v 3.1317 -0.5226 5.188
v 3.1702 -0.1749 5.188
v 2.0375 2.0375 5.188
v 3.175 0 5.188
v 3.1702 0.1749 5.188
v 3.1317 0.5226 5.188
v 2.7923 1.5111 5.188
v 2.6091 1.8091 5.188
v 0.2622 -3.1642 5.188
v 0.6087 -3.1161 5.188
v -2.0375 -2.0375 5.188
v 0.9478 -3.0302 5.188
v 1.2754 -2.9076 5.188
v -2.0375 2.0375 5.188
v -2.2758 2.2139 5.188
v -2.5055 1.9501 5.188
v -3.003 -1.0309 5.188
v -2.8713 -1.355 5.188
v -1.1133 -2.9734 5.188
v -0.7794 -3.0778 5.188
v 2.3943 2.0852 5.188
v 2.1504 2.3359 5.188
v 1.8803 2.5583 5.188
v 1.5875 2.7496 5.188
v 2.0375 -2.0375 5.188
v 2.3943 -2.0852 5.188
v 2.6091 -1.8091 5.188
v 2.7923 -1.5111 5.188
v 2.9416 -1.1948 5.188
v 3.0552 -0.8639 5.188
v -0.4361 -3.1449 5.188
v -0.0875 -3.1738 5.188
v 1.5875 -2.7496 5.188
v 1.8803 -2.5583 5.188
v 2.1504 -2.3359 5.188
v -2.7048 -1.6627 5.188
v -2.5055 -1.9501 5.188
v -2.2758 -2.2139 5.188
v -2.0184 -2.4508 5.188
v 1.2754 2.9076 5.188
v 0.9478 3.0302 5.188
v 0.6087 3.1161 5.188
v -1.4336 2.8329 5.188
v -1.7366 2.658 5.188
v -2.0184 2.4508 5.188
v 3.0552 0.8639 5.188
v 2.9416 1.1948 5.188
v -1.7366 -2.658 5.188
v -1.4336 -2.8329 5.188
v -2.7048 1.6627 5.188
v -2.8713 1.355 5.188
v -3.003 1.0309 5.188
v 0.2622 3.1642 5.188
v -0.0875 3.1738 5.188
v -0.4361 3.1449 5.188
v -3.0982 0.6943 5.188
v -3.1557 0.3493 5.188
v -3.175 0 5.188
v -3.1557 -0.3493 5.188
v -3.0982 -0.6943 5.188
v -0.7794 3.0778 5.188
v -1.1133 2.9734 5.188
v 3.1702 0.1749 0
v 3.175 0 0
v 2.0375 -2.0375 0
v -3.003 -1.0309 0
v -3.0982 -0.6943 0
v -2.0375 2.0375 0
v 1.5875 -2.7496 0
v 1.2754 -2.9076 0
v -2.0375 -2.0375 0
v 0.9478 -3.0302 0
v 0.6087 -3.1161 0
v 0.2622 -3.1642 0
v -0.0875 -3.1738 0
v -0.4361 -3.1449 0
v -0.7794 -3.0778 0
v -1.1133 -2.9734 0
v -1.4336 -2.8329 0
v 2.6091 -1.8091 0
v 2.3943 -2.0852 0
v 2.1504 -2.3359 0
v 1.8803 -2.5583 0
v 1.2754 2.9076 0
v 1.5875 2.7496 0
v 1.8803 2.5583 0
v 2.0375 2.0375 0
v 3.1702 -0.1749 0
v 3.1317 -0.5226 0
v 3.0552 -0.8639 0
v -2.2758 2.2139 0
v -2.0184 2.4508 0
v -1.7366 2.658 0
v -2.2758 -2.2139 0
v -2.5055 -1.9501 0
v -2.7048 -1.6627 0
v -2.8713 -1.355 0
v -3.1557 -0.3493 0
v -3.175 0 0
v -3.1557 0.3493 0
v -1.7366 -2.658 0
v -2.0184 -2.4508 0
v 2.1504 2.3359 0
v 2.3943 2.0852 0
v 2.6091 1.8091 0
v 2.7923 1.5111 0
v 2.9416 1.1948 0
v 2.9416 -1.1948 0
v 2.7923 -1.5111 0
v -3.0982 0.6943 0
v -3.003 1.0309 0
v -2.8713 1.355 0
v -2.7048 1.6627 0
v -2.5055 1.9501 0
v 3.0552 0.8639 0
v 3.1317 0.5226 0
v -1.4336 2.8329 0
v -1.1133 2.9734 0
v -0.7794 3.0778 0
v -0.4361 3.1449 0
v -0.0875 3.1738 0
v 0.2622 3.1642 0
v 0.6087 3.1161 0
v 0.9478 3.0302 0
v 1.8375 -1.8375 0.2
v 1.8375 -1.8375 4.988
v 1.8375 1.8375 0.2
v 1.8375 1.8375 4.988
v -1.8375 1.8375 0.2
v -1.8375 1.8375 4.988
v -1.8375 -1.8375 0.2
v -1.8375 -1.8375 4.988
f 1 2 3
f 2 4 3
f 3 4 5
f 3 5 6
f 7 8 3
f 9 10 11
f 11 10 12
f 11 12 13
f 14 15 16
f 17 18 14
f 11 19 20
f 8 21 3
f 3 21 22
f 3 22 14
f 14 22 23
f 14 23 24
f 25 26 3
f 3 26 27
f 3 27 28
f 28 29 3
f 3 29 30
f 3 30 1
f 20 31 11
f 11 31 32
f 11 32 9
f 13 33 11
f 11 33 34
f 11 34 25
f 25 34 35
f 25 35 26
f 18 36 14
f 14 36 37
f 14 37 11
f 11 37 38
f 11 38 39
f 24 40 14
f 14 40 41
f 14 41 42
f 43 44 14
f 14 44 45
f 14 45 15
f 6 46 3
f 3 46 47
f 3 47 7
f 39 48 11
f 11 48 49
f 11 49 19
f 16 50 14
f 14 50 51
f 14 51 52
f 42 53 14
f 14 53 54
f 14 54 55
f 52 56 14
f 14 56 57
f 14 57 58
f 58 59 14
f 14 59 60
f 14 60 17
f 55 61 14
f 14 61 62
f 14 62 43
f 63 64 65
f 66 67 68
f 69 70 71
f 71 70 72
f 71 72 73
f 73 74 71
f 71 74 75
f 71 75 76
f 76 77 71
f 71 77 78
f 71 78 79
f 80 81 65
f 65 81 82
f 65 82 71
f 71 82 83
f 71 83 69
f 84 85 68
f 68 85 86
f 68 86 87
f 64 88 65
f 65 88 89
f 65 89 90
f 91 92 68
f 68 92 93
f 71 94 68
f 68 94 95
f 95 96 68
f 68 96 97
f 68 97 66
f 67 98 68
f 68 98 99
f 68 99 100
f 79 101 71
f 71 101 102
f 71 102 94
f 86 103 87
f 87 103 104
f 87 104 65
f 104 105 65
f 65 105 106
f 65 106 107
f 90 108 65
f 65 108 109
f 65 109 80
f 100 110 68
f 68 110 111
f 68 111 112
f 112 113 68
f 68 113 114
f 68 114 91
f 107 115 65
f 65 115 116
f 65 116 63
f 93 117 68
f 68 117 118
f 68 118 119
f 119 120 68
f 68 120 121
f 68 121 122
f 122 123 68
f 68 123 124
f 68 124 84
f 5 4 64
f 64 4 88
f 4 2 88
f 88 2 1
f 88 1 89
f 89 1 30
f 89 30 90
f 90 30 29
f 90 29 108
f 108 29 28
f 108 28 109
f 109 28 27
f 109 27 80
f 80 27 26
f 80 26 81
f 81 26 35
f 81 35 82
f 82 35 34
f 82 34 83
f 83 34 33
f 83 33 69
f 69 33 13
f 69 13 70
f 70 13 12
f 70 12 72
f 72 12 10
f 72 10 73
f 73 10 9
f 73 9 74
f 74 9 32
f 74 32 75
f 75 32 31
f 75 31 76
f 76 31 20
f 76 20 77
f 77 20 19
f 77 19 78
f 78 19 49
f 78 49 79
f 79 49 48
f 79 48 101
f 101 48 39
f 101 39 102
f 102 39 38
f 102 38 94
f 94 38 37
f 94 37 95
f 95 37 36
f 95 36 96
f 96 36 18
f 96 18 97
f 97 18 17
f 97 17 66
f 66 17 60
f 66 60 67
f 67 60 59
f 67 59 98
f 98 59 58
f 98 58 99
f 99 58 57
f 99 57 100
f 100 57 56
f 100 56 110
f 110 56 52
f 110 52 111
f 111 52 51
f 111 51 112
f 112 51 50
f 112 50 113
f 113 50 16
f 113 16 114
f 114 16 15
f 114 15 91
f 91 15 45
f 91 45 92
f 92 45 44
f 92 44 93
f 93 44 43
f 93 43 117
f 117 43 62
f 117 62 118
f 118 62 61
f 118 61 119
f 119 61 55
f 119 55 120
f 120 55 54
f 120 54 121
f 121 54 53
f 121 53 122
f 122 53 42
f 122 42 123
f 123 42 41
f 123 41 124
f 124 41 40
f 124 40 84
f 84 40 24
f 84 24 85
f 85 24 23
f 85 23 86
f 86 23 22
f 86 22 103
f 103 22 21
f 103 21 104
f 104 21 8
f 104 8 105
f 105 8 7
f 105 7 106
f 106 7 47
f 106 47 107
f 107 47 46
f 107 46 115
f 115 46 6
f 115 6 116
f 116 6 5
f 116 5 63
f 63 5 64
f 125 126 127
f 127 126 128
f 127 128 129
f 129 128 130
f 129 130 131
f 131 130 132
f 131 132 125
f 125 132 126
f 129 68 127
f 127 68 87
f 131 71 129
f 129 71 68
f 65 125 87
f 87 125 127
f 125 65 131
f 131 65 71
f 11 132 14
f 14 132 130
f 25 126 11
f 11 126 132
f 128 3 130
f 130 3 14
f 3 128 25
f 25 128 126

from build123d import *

# Parameters (mm, degrees)
SKETCH1_R           = 3.175
SKETCH1_W           = 3.675
SKETCH1_H           = 3.675
BOSS_EXTRUDE1_DEPTH = 5.188
CHAMFER1_SIZE       = 0.2


with BuildPart() as part:
    # Sketch1 → Boss-Extrude1 (new body)
    with BuildSketch(Plane.XY):
        Circle(SKETCH1_R)
        Rectangle(SKETCH1_W, SKETCH1_H, mode=Mode.SUBTRACT)
    extrude(amount=BOSS_EXTRUDE1_DEPTH)

    # Chamfer1
    chamfer1_edges = [part.edges().sort_by_distance(p)[0] for p in [
        (0, -1.8375, 5.188),
        (1.8375, 0, 0),
        (0, 1.8375, 0),
        (-1.8375, 0, 0),
        (0, -1.8375, 0),
        (1.8375, 0, 5.188),
        (0, 1.8375, 5.188),
        (-1.8375, 0, 5.188),
    ]]
    chamfer(chamfer1_edges, length=CHAMFER1_SIZE)


solid = part.part
